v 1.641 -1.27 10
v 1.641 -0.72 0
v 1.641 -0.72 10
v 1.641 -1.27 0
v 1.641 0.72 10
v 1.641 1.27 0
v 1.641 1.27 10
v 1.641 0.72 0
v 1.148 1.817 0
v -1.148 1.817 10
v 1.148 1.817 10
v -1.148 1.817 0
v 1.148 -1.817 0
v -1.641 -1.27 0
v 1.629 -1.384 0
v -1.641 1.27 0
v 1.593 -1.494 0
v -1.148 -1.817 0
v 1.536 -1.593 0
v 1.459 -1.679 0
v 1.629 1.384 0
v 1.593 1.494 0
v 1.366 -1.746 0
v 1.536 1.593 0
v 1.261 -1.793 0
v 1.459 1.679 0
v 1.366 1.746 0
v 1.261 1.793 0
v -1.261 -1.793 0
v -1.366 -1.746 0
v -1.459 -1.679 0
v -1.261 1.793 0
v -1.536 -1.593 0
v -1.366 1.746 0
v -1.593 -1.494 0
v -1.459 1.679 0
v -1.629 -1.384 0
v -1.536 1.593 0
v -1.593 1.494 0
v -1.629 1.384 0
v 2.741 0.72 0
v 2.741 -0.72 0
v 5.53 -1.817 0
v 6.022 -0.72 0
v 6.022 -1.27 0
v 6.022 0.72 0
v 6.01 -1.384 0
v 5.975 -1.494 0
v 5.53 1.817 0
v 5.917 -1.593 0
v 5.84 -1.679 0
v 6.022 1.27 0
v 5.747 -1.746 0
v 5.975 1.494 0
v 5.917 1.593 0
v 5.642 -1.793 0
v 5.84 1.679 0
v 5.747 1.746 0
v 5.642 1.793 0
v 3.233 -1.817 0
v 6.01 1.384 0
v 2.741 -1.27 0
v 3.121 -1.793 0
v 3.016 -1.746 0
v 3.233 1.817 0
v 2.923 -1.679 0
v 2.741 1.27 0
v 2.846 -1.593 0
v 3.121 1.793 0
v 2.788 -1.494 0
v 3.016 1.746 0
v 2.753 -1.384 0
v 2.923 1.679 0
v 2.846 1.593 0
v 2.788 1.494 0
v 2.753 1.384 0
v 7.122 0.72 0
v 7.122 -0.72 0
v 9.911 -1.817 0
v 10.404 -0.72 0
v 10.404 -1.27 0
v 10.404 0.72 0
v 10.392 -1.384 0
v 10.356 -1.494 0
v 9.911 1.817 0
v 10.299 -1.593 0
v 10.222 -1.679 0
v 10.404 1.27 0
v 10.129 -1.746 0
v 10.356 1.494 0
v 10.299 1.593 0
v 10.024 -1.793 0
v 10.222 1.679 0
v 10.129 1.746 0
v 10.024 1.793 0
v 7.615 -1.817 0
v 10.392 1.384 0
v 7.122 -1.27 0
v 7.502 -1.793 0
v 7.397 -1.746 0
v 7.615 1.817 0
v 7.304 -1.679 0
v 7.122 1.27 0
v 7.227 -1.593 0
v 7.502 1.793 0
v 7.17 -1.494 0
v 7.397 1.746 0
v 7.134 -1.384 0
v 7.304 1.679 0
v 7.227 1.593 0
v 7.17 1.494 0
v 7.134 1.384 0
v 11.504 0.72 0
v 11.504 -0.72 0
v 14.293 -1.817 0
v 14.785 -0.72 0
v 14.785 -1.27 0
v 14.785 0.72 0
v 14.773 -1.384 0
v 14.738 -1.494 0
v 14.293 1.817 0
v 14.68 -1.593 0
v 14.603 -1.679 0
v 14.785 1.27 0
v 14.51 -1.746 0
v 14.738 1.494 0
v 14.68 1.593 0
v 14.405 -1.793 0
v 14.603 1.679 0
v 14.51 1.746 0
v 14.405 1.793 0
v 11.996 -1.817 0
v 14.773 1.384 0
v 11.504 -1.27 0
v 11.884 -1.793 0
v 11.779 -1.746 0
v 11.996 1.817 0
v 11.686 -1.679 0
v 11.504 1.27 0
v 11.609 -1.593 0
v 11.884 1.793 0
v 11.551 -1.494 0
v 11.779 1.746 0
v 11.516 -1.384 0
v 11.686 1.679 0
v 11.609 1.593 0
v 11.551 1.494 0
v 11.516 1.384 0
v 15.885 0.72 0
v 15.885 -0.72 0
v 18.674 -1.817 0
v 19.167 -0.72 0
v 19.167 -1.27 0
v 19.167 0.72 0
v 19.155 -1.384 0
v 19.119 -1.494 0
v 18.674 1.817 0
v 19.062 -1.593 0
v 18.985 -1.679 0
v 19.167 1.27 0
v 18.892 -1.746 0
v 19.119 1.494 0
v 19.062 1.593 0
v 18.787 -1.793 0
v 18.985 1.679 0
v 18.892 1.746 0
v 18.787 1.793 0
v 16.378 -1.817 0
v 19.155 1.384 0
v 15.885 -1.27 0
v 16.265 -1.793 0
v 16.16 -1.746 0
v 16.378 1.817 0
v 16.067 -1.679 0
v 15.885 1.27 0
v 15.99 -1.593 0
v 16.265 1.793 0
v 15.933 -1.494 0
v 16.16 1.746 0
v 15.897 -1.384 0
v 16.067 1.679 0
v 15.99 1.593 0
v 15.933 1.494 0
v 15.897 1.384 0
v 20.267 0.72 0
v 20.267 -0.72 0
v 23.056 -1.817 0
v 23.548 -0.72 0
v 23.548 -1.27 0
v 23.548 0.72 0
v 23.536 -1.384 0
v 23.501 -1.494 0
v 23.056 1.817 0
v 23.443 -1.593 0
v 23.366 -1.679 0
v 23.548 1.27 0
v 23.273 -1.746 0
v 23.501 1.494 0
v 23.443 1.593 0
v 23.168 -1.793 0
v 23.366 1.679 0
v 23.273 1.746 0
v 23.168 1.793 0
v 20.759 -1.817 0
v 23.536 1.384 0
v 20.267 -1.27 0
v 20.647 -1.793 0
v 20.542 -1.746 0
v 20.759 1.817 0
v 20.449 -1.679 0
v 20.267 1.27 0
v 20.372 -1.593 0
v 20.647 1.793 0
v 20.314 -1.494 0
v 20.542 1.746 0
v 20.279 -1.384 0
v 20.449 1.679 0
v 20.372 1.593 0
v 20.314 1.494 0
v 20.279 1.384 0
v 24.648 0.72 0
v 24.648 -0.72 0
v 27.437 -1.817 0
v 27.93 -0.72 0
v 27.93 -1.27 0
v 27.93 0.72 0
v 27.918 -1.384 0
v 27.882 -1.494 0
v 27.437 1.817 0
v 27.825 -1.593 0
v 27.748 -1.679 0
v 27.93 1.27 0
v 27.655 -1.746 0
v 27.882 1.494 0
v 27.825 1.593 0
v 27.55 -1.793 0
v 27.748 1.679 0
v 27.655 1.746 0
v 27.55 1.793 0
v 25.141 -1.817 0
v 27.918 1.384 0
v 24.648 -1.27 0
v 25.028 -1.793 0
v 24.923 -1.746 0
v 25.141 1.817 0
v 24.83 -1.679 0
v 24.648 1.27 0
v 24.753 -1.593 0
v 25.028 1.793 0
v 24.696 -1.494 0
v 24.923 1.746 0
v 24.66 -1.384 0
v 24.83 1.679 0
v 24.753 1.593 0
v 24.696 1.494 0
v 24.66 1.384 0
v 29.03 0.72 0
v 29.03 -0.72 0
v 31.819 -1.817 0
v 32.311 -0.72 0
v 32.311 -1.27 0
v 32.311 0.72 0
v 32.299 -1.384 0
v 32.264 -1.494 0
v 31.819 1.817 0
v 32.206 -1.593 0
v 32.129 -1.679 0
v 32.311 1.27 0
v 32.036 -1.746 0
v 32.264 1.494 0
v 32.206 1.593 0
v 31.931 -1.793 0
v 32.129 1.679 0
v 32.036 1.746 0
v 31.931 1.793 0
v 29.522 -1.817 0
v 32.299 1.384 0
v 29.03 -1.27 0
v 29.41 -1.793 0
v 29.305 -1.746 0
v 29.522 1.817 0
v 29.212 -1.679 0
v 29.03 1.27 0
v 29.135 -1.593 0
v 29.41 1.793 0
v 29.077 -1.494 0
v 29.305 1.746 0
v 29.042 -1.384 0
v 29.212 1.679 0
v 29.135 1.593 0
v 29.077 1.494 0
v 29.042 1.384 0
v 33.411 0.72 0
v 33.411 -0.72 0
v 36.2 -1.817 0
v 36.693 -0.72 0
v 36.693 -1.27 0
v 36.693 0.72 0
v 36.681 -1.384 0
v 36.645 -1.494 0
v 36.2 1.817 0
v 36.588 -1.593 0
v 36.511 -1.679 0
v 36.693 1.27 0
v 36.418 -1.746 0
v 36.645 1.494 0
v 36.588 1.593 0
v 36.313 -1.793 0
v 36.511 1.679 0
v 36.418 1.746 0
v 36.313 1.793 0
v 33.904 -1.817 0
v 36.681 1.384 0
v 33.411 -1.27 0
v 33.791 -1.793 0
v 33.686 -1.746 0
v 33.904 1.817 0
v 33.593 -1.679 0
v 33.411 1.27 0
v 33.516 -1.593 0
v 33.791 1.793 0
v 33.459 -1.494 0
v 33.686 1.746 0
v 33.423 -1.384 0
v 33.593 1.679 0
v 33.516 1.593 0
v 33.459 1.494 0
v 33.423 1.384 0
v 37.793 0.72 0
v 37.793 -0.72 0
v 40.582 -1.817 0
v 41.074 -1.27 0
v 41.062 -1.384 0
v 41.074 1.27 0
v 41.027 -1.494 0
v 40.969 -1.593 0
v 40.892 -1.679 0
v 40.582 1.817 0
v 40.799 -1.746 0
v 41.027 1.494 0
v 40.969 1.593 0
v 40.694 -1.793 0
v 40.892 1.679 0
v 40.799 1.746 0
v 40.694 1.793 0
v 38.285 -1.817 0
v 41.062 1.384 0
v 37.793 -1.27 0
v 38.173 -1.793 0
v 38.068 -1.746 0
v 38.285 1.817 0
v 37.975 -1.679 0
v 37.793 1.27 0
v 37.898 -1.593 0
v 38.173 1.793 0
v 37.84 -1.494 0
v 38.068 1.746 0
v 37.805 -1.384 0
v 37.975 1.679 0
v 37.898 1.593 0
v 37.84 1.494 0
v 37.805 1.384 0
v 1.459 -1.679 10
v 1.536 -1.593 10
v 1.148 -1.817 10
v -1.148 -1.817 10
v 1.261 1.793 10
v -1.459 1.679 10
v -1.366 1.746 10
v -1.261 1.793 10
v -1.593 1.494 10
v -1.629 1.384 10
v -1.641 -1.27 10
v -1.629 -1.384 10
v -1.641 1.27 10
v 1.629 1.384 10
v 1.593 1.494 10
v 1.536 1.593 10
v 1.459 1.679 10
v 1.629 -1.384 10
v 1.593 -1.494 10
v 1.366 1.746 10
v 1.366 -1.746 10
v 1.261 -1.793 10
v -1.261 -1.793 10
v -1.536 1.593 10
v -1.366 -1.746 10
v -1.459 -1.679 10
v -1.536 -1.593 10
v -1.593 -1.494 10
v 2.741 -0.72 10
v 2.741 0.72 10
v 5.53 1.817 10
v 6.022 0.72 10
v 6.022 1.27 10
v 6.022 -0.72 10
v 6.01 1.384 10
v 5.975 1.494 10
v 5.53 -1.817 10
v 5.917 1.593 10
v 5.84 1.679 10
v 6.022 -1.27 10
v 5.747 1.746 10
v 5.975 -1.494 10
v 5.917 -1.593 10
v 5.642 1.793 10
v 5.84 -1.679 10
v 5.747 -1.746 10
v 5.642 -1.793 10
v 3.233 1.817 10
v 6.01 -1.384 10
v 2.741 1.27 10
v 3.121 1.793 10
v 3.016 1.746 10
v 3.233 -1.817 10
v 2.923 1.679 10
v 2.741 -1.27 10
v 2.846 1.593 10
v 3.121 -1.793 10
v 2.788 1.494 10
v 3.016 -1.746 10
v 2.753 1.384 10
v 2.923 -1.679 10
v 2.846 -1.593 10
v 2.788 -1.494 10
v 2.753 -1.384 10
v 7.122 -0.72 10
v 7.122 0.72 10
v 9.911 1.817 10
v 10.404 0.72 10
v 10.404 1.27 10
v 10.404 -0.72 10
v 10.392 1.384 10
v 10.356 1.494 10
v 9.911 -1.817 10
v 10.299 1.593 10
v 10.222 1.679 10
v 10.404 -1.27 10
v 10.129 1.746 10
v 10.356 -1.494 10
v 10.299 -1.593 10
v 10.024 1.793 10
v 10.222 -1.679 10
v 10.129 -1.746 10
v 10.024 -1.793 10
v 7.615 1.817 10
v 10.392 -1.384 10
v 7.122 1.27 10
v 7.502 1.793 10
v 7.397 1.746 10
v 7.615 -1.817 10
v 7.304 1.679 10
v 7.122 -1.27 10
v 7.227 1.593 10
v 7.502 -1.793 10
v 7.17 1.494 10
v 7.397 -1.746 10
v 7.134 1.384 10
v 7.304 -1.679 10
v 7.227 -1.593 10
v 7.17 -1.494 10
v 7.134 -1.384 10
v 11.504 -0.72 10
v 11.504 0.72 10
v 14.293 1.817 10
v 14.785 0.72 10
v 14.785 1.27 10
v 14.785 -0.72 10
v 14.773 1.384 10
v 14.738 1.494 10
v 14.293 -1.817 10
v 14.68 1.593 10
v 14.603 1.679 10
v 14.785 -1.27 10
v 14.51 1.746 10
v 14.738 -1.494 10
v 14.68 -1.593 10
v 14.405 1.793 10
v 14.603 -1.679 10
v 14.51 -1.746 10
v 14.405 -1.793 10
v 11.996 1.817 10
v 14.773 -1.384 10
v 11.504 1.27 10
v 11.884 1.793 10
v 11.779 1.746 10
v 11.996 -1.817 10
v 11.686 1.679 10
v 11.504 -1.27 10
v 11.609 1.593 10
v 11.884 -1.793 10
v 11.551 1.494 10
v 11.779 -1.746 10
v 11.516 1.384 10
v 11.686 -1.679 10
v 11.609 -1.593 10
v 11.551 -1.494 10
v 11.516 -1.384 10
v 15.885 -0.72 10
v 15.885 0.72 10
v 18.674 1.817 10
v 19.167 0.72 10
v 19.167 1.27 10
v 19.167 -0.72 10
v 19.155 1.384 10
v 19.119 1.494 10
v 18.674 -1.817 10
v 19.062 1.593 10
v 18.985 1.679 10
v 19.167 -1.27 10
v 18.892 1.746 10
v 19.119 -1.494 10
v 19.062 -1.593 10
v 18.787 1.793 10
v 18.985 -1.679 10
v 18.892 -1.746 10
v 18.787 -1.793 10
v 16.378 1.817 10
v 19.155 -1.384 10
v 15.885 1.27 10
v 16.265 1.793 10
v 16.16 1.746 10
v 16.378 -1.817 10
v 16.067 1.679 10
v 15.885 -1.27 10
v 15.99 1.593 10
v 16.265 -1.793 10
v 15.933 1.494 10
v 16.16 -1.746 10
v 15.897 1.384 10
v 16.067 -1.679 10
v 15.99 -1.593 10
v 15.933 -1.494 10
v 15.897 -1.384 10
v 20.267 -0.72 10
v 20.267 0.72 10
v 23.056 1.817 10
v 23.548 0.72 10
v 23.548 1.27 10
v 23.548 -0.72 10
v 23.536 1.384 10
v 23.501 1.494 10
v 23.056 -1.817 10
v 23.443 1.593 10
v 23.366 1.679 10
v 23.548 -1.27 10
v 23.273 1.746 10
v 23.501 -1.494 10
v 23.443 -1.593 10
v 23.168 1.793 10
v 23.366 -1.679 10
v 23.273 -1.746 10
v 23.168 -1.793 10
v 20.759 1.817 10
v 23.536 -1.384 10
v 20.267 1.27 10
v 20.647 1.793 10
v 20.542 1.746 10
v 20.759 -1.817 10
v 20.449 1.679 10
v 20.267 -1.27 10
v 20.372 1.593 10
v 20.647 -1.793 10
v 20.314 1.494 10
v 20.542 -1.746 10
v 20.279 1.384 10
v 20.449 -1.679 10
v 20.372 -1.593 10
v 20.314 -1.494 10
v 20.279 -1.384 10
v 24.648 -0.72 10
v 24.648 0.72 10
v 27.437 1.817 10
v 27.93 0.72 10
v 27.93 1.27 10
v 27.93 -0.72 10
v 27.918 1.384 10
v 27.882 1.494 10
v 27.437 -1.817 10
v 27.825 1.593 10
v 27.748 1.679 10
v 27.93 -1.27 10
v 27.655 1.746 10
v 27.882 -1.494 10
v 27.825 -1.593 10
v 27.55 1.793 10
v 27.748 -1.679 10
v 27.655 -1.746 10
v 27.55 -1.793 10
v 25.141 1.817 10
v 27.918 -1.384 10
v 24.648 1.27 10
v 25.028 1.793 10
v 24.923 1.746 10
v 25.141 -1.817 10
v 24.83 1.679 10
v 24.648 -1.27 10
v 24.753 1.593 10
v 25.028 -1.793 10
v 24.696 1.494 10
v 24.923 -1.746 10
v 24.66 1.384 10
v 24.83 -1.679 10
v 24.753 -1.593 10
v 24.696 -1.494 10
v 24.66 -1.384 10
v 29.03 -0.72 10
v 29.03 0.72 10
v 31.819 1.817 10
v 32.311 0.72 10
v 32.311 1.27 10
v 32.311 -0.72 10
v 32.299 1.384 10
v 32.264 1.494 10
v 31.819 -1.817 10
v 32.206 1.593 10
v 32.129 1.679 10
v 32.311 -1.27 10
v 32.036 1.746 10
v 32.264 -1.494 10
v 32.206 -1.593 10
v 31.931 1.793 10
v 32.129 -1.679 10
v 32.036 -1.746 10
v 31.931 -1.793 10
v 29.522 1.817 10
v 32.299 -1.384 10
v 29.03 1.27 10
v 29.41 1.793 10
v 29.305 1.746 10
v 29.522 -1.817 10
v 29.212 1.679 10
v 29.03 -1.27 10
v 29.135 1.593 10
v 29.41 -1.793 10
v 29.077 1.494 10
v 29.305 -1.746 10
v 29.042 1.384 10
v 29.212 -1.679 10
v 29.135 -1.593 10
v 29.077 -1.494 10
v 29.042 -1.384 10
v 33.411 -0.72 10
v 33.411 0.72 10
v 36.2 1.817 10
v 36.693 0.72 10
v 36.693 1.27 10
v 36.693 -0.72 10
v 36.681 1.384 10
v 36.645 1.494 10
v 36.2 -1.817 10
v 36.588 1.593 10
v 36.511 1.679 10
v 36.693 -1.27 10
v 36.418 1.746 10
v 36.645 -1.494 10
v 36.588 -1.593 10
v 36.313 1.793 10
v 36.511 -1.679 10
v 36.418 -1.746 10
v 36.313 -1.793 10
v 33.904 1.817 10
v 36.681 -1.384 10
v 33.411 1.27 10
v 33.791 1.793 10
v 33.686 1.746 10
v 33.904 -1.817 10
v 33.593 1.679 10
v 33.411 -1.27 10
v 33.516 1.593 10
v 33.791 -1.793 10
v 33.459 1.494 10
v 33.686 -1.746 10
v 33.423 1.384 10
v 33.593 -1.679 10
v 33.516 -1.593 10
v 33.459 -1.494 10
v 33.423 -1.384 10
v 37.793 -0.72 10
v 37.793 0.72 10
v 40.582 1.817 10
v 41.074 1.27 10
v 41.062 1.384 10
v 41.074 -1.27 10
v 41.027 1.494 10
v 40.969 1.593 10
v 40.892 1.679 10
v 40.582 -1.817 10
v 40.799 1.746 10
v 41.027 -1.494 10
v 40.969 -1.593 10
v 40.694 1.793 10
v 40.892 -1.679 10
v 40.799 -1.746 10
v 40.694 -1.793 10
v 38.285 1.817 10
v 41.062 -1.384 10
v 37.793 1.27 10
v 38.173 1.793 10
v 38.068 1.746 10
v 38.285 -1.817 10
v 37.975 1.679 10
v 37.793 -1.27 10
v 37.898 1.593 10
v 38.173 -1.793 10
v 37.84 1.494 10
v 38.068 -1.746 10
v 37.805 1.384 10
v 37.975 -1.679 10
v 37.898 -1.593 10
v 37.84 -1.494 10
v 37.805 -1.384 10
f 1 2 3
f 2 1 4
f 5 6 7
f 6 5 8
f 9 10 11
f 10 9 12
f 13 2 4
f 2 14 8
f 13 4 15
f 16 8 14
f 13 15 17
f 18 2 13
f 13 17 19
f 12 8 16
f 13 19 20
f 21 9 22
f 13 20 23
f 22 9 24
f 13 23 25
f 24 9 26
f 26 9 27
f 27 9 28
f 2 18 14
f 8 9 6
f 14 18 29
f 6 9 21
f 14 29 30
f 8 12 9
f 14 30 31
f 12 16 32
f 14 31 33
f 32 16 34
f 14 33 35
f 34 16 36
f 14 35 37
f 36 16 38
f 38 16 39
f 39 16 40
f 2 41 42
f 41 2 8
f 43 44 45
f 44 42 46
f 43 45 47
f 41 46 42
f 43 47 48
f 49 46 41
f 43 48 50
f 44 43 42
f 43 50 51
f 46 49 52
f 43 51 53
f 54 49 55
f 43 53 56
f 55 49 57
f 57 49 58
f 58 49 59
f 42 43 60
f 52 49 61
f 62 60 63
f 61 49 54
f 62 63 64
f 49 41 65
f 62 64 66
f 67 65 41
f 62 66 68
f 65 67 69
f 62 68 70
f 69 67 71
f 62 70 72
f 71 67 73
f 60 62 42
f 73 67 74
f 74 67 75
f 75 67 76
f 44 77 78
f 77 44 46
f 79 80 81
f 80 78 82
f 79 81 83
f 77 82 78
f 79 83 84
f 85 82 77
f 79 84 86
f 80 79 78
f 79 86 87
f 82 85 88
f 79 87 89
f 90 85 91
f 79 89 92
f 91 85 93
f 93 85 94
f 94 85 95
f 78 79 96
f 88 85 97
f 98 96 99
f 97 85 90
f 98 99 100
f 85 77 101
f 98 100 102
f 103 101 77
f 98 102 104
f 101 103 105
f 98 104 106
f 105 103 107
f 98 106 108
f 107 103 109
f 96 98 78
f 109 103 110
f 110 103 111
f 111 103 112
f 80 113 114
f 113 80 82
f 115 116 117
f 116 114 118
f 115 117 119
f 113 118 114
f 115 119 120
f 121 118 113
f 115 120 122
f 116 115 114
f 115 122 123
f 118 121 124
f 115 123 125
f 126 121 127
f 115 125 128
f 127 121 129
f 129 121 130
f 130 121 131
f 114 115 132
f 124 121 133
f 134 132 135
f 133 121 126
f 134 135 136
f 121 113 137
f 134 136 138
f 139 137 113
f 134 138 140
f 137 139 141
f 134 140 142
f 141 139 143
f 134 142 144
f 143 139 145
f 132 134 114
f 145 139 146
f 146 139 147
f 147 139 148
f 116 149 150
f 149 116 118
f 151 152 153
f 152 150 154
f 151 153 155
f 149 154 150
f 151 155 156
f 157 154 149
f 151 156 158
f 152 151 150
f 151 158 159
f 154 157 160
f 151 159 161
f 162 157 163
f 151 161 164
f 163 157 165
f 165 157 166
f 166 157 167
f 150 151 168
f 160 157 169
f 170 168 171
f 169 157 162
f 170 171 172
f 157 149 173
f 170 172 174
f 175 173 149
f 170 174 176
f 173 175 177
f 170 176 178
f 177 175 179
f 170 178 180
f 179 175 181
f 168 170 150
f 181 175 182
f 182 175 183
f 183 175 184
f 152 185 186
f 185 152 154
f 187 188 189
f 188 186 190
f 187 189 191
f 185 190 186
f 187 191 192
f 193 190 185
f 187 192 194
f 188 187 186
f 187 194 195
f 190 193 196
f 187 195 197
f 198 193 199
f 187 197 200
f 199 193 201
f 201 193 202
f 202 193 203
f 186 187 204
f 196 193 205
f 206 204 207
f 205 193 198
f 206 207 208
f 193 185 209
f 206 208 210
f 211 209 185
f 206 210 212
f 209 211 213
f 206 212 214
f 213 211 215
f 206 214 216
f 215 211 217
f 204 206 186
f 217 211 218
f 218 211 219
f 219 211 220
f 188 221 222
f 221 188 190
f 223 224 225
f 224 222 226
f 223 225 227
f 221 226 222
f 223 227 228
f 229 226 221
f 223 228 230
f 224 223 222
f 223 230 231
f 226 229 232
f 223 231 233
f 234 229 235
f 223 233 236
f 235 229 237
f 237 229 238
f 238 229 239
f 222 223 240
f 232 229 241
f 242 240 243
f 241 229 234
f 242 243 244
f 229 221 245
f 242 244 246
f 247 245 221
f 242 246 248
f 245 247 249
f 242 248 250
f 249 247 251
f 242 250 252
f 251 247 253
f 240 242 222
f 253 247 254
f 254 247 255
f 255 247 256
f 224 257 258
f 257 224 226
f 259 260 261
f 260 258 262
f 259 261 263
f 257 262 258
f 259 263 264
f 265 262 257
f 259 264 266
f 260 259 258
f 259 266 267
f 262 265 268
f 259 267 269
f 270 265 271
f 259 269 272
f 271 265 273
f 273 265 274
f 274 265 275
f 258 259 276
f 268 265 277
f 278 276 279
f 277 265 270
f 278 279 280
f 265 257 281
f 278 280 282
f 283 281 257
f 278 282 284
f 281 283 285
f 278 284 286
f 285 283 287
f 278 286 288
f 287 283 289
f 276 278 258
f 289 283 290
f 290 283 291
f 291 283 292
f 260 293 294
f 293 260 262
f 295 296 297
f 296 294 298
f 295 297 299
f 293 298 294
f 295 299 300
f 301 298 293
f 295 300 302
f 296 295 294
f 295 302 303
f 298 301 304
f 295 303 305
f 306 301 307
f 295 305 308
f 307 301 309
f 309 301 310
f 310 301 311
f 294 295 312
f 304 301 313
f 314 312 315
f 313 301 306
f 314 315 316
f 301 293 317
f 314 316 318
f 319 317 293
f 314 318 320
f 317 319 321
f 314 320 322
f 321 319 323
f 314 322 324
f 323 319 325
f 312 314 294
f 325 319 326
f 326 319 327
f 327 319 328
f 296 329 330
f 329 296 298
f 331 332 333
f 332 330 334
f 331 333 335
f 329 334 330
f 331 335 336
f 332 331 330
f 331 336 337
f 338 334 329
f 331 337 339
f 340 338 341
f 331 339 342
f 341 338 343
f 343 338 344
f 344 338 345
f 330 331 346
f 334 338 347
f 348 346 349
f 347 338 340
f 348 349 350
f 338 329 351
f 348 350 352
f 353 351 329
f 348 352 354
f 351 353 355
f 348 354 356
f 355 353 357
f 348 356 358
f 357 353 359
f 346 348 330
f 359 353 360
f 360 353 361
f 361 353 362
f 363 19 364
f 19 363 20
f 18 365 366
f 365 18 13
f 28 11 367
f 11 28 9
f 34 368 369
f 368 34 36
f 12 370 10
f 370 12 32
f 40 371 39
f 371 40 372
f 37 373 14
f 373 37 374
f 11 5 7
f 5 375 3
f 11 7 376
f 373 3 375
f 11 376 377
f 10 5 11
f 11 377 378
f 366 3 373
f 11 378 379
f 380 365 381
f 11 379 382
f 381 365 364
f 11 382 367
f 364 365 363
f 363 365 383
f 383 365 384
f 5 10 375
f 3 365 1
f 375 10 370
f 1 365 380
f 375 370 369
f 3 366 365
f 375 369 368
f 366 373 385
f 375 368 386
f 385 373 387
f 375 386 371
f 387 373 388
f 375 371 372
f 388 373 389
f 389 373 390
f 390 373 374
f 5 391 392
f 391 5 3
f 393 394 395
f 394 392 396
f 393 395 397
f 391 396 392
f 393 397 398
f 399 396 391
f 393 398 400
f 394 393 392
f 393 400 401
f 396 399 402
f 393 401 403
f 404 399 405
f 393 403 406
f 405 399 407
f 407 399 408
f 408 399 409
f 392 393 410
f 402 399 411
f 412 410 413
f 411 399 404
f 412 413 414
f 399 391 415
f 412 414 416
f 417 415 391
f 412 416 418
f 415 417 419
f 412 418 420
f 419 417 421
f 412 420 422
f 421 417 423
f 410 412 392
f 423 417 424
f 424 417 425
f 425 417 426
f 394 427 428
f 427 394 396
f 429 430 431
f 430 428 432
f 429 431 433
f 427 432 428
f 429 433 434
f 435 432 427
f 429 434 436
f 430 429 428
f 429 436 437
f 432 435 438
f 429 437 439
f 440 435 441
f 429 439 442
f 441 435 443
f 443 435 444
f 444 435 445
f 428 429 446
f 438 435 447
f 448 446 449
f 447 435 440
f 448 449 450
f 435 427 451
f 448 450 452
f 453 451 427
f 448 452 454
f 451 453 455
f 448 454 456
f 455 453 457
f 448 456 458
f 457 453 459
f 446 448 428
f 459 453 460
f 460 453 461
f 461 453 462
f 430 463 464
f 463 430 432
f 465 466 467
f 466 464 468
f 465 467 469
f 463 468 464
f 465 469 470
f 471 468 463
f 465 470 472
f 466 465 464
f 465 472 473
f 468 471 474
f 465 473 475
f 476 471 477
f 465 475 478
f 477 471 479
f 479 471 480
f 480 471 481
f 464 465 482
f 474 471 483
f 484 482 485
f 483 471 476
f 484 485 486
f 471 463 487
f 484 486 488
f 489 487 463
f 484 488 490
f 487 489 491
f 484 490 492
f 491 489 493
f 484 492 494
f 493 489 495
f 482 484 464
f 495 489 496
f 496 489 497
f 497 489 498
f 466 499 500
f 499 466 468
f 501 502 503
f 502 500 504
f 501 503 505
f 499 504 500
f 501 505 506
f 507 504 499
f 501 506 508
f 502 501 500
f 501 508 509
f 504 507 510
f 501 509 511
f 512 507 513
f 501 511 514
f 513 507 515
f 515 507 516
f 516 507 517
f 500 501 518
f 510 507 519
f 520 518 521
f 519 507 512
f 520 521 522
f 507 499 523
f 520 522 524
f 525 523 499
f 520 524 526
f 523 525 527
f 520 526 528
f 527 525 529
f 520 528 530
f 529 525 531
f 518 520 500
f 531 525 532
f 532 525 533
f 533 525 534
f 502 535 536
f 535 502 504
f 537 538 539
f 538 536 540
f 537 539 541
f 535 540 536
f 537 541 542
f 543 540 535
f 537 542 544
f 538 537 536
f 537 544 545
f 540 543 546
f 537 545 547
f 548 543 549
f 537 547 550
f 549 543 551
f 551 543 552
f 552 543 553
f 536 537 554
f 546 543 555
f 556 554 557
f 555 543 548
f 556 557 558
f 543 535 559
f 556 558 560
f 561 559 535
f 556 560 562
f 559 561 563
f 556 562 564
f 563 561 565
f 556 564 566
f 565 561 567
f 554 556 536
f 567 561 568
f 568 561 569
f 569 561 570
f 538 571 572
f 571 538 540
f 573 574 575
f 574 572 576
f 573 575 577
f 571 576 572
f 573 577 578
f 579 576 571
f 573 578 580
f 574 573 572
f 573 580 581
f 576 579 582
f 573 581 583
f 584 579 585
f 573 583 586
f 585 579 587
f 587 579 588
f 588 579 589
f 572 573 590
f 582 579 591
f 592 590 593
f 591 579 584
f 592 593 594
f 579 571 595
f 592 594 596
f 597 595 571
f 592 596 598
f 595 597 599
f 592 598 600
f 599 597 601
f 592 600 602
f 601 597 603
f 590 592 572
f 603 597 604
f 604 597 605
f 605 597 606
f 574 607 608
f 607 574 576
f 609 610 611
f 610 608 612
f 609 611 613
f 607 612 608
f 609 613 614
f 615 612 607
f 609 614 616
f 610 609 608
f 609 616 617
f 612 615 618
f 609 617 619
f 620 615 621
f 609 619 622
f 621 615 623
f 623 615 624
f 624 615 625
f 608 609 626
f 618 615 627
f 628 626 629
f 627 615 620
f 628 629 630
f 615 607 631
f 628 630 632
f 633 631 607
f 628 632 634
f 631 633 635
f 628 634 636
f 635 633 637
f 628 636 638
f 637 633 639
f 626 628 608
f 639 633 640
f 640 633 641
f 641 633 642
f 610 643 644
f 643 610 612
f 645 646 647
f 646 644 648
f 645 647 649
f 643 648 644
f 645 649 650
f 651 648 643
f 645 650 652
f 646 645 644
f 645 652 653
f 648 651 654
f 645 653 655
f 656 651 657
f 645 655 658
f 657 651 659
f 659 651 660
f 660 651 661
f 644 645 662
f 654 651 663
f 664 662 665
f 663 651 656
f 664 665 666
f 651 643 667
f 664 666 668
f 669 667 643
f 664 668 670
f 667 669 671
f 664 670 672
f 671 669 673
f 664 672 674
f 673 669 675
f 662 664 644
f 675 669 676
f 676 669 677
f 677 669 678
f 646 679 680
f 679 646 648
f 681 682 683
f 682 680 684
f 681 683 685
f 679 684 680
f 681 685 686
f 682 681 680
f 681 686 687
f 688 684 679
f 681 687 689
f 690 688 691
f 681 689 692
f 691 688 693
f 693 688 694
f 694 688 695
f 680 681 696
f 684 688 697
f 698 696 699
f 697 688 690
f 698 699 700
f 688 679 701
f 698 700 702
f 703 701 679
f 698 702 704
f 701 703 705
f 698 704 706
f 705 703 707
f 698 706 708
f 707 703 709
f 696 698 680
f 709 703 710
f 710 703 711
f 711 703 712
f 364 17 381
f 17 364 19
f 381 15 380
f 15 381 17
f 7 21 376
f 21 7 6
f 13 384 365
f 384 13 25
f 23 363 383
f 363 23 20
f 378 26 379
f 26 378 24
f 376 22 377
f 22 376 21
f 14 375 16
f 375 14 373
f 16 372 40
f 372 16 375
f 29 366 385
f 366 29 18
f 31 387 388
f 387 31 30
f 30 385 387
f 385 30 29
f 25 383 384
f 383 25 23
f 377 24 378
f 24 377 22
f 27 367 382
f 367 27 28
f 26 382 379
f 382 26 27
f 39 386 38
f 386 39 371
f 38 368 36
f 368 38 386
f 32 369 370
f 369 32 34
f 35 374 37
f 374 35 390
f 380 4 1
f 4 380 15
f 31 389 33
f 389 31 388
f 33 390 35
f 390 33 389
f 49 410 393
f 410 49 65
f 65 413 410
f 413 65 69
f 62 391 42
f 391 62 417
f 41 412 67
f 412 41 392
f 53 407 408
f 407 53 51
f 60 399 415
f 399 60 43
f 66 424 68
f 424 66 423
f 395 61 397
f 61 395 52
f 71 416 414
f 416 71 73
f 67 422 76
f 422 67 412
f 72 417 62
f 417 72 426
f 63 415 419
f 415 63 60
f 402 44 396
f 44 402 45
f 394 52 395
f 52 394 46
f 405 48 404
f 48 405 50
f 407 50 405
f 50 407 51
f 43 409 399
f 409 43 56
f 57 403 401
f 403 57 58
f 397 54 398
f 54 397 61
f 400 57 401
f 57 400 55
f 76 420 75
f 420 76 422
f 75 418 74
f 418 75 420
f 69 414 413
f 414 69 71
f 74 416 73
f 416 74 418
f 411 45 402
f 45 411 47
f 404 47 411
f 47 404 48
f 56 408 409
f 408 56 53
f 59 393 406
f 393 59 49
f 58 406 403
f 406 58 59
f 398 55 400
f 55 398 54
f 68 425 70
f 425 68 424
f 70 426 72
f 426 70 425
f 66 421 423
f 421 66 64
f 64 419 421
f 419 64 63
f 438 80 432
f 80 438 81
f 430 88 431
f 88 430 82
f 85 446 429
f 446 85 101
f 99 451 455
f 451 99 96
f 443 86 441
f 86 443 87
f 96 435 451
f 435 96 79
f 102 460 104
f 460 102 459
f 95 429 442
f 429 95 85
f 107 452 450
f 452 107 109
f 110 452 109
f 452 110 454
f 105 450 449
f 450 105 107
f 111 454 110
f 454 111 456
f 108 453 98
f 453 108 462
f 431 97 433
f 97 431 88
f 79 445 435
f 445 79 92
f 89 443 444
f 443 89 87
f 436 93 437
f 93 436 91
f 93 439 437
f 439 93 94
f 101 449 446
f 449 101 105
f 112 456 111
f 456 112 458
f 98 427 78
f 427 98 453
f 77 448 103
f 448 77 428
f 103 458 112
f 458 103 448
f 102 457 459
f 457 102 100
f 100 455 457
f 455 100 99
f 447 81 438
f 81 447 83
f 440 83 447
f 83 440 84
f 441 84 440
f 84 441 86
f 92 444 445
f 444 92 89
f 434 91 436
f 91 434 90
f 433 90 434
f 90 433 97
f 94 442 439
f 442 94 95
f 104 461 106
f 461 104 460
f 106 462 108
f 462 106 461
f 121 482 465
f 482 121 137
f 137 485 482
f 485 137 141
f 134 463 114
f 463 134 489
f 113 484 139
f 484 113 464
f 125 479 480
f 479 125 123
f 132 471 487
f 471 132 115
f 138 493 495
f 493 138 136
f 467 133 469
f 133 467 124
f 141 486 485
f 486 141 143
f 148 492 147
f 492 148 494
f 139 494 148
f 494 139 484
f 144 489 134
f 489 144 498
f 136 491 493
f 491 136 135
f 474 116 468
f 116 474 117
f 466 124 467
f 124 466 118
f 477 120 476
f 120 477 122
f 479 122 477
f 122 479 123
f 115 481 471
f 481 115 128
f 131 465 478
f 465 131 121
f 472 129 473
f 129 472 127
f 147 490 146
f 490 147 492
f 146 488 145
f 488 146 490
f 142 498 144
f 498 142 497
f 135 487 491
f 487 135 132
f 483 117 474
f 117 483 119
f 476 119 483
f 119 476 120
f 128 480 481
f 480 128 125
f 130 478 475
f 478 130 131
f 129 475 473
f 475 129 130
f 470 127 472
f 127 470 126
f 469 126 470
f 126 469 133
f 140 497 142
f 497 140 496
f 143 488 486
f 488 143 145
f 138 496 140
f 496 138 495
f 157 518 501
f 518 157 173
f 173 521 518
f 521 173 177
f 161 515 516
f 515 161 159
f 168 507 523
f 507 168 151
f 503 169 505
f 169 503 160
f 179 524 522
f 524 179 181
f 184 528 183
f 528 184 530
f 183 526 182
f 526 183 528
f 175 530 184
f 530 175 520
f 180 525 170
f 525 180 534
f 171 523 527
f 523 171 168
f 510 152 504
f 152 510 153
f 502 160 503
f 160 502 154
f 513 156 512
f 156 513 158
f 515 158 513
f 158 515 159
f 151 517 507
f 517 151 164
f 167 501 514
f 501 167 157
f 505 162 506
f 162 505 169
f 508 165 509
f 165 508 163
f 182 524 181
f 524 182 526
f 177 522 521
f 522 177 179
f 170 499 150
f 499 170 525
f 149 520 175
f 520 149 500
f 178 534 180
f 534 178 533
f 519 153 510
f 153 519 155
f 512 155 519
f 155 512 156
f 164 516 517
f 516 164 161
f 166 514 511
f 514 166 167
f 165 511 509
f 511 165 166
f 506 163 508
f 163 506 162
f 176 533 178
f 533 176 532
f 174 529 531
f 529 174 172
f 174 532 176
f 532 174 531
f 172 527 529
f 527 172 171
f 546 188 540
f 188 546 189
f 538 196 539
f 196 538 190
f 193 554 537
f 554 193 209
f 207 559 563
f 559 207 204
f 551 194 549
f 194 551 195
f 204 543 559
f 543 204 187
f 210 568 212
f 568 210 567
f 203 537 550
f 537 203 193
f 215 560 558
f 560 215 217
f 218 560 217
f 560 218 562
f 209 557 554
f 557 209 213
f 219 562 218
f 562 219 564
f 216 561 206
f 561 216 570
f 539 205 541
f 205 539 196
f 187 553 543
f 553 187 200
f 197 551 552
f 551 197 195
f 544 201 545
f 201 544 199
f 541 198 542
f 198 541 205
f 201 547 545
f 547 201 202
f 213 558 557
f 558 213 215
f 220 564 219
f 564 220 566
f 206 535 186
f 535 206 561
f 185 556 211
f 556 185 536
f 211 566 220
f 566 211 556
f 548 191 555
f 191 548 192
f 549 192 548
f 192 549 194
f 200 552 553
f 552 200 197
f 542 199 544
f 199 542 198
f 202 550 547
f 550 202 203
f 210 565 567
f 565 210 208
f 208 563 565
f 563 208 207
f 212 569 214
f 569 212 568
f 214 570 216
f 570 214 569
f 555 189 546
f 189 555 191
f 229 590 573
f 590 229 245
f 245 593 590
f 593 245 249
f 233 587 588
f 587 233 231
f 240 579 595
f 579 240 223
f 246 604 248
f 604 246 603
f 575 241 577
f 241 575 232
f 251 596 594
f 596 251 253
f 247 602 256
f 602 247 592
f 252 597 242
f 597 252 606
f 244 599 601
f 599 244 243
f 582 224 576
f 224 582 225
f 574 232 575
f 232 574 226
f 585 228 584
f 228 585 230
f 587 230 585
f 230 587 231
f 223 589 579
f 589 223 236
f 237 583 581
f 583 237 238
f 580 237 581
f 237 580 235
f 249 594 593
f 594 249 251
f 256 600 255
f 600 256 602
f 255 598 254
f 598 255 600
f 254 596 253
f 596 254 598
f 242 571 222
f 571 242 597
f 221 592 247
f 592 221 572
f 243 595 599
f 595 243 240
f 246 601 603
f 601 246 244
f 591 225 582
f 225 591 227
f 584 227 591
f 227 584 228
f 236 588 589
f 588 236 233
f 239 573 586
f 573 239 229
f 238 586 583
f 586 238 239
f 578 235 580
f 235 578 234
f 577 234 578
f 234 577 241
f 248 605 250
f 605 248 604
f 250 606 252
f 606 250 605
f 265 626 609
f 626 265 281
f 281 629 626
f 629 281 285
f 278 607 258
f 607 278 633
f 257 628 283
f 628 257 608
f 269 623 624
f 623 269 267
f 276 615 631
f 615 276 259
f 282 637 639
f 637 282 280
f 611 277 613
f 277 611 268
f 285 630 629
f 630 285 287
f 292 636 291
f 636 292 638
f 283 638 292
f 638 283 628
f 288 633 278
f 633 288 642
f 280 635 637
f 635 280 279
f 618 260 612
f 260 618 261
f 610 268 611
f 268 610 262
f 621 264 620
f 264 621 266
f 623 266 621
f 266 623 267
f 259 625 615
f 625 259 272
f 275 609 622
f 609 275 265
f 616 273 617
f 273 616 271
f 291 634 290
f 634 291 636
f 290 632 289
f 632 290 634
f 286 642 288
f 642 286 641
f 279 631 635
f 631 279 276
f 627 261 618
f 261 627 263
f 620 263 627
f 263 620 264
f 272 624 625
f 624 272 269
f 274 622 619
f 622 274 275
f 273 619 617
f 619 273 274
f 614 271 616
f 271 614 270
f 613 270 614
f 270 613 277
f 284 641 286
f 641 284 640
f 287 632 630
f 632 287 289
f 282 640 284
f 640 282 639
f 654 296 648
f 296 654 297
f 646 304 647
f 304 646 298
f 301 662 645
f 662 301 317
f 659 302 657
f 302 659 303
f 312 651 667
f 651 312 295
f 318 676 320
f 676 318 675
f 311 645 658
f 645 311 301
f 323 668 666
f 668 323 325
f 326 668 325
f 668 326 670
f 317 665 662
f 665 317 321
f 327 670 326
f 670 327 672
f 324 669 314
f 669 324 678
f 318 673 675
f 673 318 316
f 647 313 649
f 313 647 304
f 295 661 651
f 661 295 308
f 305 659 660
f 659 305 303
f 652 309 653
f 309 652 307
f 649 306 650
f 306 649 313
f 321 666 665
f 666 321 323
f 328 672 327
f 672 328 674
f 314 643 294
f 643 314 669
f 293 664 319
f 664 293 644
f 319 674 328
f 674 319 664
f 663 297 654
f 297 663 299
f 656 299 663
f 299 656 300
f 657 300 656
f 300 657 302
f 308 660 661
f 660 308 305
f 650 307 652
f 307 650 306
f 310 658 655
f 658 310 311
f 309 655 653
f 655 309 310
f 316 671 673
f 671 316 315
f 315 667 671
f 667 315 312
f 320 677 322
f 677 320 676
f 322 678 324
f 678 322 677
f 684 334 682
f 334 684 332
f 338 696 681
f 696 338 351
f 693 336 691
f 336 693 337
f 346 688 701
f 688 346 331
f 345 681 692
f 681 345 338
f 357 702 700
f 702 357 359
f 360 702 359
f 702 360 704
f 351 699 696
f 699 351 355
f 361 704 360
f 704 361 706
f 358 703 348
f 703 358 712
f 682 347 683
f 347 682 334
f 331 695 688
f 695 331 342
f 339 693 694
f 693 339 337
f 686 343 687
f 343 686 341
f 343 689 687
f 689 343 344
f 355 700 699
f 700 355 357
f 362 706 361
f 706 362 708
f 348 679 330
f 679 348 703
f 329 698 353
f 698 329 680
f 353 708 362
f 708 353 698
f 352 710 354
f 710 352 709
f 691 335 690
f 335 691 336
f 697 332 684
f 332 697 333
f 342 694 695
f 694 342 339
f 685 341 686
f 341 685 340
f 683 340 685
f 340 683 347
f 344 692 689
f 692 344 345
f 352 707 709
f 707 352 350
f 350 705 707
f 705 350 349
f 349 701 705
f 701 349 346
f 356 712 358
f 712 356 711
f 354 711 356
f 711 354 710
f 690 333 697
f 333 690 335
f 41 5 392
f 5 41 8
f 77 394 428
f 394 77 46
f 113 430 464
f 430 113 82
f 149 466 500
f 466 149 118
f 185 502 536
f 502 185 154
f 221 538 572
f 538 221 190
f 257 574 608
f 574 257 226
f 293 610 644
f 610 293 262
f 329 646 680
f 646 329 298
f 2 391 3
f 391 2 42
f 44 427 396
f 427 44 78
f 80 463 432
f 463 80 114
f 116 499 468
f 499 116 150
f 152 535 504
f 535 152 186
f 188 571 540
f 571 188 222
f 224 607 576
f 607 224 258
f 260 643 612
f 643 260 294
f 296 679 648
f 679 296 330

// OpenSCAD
$fn = 30;

// Produces dividers between LEDs, width and length are
// center-to-center for the bounding cylinders so total
// length is length + (edgeradius * 2) and the same for
// width. Height is as given though
module divider(width, length, height, edgeradius) {
    hull() {
        translate([-length/2, width/2, 0]) {
            cylinder(r = edgeradius, h = height);
        }
        translate([-length/2, -width/2, 0]) {
            cylinder(r = edgeradius, h = height);
        }
        translate([length/2, width/2, 0]) {
            cylinder(r = edgeradius, h = height);
        }
        translate([length/2, -width/2, 0]) {
            cylinder(r = edgeradius, h = height);
        }
    }
}
// Produces an LED standoff with the given number of
// spaces, spacing, width (center-to-center) and height.
module standoff(numspaces, spacing, width, voidsize, height){
    divlength = spacing - (voidsize * 2);
    supportwidth = width - voidsize;
    length = (numspaces * spacing) + divlength;
    union() {    
        for(i = [0:numspaces]) {
            translate([i * spacing, 0, 0]) { 
                divider(width, divlength, height, voidsize/2);
            }
        }
        translate([-divlength/2,-supportwidth/2,0]){
            cube([length,supportwidth,height]);
        }
    }
}
// Set parameters. The units here are in millimeters.

// Number of LEDs
numleds = 9;

// Spacing between LEDs
spacing = 4.3815;

// LED pad pitch
width = 2.54;

// LED pad drill diameter (plus some)
voidsize = 1.1;

// Standoff height
height = 10;

// Get part
standoff(numleds, spacing, width, voidsize, height);
